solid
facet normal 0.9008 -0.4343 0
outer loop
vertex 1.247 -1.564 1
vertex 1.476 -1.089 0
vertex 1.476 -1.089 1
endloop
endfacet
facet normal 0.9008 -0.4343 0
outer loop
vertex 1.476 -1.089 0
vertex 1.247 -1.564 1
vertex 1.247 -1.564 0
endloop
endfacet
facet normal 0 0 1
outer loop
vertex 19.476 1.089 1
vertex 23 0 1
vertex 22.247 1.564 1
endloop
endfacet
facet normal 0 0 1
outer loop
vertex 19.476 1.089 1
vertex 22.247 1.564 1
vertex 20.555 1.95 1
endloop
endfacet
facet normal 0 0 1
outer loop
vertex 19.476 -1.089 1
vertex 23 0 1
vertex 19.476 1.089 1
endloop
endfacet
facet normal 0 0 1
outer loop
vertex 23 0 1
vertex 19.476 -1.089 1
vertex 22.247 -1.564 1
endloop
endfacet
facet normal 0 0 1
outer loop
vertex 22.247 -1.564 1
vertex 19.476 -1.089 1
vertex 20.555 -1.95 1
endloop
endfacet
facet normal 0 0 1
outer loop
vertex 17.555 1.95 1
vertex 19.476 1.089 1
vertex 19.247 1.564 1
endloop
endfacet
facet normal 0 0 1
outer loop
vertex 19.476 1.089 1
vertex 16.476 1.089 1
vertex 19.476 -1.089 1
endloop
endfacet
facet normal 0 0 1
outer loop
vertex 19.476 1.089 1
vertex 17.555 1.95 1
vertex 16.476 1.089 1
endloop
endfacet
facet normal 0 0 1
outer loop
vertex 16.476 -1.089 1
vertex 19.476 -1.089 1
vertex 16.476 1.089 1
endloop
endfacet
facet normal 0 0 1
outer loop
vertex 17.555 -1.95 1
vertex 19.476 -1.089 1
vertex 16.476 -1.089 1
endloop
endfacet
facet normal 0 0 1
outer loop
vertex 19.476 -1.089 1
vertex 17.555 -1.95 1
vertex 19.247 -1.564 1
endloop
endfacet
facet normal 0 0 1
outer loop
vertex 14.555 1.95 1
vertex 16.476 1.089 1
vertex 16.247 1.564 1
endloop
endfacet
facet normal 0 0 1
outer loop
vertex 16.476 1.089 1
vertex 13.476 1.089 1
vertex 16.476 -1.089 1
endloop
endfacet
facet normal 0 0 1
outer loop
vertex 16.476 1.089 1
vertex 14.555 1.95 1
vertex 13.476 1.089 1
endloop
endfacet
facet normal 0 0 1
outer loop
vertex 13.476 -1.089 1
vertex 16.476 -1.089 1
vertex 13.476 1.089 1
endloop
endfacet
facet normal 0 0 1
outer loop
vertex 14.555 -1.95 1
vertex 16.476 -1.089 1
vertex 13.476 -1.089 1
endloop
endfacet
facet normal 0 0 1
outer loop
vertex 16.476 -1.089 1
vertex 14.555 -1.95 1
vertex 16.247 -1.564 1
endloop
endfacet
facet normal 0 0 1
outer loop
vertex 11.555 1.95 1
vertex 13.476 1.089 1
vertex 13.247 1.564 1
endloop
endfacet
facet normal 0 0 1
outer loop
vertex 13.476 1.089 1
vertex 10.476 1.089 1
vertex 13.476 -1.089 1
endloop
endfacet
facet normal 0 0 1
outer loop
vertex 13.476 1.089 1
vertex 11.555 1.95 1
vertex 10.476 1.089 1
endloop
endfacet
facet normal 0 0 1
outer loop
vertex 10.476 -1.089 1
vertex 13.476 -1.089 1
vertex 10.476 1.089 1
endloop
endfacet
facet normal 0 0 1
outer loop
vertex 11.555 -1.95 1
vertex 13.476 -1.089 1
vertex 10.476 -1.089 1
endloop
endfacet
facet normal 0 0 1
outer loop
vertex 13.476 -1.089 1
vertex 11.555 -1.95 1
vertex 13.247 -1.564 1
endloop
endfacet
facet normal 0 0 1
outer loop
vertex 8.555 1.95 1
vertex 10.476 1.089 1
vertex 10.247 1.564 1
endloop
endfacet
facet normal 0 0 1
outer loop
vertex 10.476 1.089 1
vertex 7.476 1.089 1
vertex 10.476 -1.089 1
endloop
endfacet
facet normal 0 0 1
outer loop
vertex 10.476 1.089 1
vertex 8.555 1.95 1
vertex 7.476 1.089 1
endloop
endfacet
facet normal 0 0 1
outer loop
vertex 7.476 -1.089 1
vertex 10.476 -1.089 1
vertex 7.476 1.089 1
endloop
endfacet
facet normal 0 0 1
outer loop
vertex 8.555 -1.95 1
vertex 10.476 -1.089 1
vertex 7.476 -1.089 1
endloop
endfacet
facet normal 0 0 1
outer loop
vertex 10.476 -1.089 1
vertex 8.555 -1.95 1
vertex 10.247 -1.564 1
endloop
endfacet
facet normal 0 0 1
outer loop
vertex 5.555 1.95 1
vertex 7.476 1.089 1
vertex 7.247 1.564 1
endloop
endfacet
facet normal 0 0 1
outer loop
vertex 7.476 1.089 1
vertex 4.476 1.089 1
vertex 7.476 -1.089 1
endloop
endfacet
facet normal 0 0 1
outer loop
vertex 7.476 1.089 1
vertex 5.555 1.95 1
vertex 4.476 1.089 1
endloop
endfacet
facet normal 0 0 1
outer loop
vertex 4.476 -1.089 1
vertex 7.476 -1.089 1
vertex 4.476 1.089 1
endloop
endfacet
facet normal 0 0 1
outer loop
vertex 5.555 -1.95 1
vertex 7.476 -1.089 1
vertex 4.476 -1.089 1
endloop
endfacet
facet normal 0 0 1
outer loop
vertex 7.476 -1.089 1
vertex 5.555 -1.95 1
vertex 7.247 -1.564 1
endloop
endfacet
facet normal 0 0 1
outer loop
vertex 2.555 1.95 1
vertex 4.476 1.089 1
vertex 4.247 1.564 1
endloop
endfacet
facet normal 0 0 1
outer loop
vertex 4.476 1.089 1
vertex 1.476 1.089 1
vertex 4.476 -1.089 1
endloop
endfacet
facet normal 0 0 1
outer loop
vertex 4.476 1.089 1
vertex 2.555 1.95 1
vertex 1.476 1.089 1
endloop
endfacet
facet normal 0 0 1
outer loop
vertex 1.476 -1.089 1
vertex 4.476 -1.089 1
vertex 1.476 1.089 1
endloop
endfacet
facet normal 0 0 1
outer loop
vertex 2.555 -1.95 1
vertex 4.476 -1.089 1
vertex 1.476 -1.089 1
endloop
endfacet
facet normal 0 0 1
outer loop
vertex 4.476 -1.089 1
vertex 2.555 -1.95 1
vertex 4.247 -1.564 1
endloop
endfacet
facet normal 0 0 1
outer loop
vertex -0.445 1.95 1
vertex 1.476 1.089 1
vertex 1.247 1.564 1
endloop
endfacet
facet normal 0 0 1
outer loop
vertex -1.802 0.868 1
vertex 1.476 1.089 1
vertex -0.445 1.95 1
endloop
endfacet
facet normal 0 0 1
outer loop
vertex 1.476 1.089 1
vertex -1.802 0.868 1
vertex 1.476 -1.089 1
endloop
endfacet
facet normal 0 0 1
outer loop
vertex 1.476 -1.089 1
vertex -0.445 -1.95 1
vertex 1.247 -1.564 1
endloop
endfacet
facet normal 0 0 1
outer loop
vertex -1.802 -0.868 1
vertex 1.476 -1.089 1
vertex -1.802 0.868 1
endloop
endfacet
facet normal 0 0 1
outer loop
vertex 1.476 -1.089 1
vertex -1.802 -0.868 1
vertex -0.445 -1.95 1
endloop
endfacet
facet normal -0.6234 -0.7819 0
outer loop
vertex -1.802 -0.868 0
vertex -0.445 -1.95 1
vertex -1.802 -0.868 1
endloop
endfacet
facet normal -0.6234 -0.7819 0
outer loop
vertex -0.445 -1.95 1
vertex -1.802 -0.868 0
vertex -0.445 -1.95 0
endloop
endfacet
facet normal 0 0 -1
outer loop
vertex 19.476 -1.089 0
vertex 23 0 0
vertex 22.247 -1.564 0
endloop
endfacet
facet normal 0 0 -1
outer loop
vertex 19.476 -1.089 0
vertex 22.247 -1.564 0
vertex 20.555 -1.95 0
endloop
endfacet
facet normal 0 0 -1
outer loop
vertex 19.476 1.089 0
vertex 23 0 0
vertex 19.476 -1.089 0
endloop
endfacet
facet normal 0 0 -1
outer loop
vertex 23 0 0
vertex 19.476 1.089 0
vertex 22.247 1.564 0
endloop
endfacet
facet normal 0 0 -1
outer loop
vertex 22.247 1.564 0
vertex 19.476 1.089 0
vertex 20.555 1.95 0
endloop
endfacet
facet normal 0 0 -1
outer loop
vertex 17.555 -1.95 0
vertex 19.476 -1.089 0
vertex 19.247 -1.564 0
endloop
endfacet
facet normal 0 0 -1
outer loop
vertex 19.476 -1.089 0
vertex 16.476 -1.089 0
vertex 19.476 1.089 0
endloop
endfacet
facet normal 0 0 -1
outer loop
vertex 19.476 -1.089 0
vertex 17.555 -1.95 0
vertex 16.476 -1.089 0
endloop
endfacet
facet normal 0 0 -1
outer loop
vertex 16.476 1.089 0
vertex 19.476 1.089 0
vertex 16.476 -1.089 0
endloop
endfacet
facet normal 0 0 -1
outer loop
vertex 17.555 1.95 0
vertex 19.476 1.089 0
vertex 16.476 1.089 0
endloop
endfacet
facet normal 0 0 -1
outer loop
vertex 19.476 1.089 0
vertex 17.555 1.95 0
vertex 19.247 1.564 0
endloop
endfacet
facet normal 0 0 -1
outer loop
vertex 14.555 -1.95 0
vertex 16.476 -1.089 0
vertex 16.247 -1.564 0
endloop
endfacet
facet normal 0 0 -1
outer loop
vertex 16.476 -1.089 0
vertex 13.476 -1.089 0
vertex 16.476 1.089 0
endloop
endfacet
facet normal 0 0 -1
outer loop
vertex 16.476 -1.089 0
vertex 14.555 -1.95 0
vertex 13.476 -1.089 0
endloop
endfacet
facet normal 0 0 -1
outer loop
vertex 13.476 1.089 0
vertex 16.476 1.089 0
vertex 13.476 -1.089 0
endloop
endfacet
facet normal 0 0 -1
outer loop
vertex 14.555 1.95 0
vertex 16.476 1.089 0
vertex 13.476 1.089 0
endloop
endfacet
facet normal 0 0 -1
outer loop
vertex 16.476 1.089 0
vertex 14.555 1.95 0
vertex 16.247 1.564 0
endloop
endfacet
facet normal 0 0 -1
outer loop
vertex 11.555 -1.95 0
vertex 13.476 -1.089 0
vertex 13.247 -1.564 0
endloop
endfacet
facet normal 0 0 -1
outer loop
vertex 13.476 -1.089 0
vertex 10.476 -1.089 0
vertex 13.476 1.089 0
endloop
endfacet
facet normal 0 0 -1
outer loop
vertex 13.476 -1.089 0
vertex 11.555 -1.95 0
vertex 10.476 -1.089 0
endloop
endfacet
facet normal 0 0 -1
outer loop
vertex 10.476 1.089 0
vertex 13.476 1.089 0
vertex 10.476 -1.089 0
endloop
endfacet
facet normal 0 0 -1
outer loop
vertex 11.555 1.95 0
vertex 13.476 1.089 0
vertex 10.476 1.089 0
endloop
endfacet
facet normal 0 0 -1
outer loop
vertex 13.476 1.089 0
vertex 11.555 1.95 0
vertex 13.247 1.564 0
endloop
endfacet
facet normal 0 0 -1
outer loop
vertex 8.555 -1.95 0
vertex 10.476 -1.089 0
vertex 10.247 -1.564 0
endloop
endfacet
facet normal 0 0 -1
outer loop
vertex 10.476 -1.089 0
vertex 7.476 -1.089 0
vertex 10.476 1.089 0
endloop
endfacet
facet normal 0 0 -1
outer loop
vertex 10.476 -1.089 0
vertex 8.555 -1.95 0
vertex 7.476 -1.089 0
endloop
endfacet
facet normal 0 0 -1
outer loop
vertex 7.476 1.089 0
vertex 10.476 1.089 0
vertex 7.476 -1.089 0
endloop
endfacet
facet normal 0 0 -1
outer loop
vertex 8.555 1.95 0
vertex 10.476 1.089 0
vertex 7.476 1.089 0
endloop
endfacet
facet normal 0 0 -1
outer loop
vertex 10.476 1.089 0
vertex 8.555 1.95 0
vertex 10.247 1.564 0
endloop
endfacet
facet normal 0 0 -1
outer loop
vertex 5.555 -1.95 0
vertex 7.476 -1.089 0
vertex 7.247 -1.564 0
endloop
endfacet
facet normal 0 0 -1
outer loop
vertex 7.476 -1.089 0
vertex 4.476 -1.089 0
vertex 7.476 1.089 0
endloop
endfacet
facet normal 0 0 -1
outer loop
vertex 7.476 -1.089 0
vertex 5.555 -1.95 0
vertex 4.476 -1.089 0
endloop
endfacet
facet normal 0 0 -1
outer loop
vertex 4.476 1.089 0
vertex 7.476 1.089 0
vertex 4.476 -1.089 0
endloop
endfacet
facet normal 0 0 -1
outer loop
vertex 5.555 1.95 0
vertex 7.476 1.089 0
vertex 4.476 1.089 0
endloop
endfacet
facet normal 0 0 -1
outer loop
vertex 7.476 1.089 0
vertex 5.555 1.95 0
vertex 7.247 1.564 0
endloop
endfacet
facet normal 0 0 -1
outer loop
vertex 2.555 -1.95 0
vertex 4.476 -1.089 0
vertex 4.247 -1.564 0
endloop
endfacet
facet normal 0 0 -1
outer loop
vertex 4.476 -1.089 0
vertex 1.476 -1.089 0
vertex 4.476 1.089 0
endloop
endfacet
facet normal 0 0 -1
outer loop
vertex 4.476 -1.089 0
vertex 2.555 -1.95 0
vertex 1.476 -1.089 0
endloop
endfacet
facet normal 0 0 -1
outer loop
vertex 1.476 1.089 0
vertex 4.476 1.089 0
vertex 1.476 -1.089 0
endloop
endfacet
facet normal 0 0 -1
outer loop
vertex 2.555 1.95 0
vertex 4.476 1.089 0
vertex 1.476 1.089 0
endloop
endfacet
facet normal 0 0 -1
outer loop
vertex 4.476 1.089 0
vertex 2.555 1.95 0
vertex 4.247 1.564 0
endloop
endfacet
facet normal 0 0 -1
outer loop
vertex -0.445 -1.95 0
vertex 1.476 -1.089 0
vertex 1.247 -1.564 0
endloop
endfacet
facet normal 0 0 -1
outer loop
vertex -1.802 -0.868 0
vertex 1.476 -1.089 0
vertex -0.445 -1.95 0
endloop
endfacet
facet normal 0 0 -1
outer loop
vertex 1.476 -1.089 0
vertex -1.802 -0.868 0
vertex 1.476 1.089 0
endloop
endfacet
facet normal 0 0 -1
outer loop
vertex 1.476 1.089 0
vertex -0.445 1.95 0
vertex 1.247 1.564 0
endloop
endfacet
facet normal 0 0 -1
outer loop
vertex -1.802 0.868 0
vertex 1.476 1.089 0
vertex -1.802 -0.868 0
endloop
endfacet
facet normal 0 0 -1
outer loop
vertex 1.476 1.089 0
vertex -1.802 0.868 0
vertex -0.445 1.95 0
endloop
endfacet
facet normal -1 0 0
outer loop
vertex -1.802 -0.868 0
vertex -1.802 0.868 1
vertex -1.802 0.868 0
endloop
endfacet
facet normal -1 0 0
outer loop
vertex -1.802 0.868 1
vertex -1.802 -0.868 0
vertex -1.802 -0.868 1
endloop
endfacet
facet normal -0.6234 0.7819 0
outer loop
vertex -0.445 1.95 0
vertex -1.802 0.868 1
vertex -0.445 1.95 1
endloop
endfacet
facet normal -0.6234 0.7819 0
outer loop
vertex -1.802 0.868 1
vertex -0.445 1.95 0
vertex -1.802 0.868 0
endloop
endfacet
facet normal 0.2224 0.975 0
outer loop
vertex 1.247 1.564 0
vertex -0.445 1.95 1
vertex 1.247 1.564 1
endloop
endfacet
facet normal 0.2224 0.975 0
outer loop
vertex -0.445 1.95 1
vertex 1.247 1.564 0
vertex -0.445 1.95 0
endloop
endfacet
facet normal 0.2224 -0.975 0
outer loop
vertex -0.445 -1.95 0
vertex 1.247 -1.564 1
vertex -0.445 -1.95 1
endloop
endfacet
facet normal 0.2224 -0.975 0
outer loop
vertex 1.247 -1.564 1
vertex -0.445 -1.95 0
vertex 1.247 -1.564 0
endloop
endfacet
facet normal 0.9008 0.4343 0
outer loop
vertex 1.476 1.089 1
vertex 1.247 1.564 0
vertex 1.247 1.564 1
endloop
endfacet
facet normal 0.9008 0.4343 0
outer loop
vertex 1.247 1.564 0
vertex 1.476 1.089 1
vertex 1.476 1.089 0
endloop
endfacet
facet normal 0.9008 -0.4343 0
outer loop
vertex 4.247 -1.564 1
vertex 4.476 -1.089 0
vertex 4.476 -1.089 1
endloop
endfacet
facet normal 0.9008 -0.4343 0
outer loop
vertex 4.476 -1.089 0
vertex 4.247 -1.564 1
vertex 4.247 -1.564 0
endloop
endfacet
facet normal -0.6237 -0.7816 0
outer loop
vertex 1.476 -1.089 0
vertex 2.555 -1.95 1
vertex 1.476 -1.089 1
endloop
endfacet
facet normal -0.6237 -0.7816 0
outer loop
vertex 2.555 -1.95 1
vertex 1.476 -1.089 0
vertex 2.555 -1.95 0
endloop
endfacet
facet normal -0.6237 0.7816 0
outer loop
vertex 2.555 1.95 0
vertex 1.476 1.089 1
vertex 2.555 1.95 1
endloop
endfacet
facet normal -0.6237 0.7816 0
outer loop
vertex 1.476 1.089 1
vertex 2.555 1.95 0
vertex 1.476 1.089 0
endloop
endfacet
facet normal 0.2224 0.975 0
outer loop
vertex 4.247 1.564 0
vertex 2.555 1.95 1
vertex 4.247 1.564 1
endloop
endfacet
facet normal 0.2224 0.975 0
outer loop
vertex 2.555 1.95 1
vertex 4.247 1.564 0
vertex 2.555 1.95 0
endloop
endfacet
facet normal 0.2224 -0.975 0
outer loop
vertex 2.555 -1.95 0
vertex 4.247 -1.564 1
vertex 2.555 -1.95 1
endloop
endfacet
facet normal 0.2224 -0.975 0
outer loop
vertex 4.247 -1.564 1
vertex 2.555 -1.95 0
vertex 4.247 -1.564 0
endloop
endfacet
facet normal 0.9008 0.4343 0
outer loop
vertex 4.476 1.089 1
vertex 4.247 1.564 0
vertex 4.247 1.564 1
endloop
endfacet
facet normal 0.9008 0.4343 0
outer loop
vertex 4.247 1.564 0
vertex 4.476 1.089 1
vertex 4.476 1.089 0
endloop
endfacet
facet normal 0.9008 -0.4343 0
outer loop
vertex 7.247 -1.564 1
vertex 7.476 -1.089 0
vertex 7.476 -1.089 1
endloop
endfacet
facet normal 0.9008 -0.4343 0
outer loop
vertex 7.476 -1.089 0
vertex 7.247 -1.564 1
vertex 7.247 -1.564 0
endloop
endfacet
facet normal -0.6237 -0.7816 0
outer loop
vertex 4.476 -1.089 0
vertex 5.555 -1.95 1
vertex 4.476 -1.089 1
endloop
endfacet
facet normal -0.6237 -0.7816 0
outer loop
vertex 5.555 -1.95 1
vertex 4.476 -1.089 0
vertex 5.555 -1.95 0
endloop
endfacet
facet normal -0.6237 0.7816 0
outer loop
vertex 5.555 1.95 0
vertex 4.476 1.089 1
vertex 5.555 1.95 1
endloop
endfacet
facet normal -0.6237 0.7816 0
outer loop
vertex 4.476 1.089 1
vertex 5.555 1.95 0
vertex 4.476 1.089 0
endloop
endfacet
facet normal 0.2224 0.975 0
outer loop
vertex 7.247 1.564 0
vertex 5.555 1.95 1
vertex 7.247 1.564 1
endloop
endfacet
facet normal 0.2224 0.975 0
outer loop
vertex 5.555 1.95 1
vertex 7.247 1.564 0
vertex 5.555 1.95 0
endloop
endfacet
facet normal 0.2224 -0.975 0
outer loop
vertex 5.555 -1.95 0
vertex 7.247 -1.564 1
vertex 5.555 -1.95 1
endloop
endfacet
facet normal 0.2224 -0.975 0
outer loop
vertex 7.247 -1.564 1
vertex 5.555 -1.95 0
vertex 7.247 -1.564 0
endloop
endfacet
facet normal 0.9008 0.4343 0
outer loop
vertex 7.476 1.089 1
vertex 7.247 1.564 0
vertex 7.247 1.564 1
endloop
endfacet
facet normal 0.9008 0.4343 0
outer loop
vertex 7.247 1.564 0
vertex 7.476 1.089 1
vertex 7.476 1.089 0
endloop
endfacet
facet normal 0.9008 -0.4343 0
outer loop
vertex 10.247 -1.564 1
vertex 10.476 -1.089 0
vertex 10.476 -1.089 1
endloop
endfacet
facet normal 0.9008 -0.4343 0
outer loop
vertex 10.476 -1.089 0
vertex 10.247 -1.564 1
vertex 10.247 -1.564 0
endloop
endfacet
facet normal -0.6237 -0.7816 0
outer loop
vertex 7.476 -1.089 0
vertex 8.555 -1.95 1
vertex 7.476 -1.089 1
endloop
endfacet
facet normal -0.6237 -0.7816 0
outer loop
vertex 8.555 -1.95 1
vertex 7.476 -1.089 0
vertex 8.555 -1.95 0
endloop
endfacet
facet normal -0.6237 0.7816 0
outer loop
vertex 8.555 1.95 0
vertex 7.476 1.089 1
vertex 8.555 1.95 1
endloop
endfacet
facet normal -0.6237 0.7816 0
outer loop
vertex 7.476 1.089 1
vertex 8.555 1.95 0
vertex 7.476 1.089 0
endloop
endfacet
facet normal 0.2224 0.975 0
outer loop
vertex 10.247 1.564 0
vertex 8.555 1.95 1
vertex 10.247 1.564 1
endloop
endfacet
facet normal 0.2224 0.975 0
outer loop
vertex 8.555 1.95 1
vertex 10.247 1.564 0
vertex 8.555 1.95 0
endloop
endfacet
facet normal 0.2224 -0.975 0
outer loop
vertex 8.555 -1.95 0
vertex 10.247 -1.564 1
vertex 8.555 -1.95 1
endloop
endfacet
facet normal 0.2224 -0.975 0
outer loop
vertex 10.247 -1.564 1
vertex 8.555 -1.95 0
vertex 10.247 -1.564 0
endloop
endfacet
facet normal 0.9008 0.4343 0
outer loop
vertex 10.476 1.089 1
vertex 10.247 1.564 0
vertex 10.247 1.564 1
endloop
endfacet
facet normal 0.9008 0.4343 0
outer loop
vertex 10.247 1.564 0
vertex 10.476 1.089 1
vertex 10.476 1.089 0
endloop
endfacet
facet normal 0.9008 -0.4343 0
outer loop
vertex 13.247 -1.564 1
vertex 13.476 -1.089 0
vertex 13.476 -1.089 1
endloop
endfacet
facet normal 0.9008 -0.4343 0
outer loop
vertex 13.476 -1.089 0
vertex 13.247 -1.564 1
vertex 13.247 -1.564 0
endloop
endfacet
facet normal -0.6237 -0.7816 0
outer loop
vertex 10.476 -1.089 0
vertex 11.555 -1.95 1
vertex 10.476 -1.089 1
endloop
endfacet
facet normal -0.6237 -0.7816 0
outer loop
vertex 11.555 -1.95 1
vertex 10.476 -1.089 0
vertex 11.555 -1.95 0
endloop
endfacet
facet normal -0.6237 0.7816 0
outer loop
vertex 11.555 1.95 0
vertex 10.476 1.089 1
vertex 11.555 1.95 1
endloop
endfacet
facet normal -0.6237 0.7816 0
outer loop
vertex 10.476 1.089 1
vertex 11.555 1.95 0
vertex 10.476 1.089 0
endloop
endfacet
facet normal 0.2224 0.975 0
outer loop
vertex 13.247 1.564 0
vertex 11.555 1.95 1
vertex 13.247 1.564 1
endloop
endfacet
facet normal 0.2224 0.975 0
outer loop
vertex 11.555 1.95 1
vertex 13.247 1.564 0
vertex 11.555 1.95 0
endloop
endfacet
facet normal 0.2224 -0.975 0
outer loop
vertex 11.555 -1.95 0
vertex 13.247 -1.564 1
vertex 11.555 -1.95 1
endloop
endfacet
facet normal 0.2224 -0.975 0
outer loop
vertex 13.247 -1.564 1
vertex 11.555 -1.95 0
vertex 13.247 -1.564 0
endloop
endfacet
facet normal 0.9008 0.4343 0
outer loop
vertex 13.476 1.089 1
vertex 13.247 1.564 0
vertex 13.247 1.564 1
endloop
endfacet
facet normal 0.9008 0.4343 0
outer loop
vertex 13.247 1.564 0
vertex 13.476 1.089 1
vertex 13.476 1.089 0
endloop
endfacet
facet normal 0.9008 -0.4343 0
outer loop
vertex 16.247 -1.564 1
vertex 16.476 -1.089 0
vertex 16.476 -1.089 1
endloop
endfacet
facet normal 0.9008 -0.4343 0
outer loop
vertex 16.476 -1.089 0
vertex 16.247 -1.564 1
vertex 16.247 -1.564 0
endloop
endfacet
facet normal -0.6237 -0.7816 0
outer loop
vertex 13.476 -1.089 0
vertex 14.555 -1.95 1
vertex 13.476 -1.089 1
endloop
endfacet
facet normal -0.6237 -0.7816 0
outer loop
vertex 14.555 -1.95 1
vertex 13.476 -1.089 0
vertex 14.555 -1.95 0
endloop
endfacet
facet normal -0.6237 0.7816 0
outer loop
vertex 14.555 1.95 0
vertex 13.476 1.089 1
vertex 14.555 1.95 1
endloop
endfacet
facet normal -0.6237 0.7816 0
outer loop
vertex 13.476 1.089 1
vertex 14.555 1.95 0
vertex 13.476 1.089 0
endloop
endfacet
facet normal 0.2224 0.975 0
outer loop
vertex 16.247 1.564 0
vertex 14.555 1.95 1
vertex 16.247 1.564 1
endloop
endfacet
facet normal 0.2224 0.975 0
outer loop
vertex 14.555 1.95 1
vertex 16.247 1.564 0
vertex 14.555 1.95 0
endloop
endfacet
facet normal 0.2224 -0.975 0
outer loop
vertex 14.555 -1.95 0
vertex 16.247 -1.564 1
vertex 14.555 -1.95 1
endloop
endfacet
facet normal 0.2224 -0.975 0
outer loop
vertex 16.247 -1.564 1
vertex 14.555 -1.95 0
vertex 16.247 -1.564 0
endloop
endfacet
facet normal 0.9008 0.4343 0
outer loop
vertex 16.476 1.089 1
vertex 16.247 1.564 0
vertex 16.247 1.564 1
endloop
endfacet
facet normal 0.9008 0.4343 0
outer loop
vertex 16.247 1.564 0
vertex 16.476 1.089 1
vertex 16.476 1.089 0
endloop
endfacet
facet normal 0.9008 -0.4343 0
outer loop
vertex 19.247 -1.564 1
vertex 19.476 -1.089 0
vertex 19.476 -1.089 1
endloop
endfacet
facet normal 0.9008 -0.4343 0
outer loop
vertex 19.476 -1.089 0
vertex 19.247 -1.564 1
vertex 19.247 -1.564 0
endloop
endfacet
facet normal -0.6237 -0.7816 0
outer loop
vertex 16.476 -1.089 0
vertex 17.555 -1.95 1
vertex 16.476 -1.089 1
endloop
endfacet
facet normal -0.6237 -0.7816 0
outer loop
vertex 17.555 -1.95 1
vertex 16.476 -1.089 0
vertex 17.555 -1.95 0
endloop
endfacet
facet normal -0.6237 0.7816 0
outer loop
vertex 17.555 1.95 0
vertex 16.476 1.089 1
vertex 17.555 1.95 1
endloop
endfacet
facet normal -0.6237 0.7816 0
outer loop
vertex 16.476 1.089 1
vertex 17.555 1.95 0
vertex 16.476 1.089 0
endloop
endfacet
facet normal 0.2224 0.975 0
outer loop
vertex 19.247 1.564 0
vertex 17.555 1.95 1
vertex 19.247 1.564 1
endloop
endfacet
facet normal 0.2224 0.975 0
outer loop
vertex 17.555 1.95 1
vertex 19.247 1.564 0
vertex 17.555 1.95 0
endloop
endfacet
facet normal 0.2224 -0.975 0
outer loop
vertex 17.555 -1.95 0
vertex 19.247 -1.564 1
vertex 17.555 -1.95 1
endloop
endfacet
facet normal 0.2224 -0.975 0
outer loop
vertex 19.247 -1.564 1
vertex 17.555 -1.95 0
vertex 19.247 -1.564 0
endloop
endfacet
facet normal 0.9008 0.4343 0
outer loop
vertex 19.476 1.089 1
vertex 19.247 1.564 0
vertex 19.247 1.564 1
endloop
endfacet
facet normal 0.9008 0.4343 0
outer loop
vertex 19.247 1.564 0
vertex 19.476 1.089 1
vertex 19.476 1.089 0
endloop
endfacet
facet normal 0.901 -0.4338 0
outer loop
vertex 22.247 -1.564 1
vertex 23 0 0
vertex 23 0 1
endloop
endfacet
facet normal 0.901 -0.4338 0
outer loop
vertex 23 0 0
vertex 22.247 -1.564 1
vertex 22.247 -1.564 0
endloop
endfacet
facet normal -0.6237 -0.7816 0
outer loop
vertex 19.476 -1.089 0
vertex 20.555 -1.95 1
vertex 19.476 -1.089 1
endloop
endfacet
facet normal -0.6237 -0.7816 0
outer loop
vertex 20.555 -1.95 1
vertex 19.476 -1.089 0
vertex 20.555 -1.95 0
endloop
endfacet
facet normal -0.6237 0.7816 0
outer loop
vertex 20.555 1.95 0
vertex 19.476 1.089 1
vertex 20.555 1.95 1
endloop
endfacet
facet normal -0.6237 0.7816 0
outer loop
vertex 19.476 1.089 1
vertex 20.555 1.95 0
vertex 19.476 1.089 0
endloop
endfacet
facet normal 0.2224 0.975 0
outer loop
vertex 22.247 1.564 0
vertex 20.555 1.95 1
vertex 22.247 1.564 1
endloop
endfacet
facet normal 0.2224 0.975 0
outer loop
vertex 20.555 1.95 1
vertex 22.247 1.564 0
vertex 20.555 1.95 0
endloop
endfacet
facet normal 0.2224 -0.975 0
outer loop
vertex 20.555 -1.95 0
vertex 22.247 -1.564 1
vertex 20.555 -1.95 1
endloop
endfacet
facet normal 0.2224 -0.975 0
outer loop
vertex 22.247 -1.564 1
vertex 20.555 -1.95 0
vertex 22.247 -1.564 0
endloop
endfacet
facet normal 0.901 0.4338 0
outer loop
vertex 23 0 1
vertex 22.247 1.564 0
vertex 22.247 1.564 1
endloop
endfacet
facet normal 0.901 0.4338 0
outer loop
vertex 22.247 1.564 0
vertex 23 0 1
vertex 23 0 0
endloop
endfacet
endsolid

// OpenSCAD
// Flower with petals

// Parameters
petal_width = 10;
petal_height = 5;
petal_thickness = 1;
petal_radius = 2;
center_radius = 1;
num_petals = 8;

module petal(x, y, z) {
    translate([x, y, z])
        linear_extrude(height = petal_thickness)
            circle(r = petal_radius);
}

module flower() {
    for (i = [0:num_petals - 1]) {
        petal(i * (petal_radius + center_radius), 0, 0);
    }

    for (i = [0:num_petals - 1]) {
        translate([petal_radius * i + center_radius, 0, 0])
            rotate([0, 0, i * (360 / num_petals)])
                circle(r = center_radius);
    }
}

flower();
